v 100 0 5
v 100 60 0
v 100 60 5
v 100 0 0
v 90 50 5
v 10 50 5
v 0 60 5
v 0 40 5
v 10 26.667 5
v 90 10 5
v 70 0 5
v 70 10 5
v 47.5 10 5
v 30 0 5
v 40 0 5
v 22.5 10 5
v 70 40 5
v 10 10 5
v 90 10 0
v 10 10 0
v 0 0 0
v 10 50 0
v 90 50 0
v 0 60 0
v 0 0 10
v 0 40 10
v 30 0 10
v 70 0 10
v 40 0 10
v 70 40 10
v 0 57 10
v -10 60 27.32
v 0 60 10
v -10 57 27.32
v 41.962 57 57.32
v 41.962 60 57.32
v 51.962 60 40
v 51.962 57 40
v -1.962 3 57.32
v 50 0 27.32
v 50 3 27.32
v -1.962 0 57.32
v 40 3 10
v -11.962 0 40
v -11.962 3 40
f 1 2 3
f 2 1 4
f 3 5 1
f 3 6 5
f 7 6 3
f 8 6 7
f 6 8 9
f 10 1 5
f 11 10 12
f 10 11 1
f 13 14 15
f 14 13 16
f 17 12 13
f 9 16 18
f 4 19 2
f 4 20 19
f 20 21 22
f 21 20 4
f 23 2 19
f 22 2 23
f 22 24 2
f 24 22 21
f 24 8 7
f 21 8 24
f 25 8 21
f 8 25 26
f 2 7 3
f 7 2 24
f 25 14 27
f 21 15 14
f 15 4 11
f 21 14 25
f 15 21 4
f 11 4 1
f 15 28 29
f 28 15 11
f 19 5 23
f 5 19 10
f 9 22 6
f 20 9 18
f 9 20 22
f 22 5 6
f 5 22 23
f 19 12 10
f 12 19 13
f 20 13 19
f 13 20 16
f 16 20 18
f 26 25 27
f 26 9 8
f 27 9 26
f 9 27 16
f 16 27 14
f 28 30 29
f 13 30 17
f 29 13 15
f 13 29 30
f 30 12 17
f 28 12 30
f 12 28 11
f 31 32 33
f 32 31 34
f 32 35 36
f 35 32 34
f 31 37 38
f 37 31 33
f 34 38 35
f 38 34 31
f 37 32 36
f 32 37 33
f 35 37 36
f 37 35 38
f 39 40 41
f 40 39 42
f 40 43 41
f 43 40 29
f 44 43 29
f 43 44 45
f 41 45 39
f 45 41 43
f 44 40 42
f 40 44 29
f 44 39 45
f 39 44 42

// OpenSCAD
// Parameters
frame_length = 100;
frame_width = 60;
frame_thickness = 5;
cutout_margin = 10;

bracket_height = 40;
bracket_thickness = 5;
bracket_base = 30;

panel_length = 60;
panel_height = 20;
panel_thickness = 3;
panel_angle = 30;

// Base Frame
module base_frame() {
    difference() {
        cube([frame_length, frame_width, frame_thickness]);
        translate([cutout_margin, cutout_margin, -1])
            cube([frame_length - 2*cutout_margin, frame_width - 2*cutout_margin, frame_thickness + 2]);
    }
}

// Triangular Support Bracket
module triangular_bracket() {
    difference() {
        linear_extrude(height = bracket_thickness)
            polygon(points=[[0,0], [0,bracket_height], [bracket_base,0]]);
        // Circular hole
        translate([bracket_base/2, bracket_height - 10, -1])
            cylinder(h=bracket_thickness + 2, r=2, $fn=30);
    }
}

// Angled Side Panel
module angled_panel() {
    rotate([0, -panel_angle, 0])
        cube([panel_length, panel_thickness, panel_height]);
}

// Assembly
module assembly() {
    // Base Frame
    base_frame();

    // Triangular Brackets
    translate([0, 0, frame_thickness])
        triangular_bracket();
    translate([frame_length - bracket_base, 0, frame_thickness])
        mirror([1, 0, 0])
            triangular_bracket();

    // Angled Panels
    translate([0, frame_width - panel_thickness, frame_thickness + bracket_thickness])
        angled_panel();
    translate([frame_length - panel_length, 0, frame_thickness + bracket_thickness])
        mirror([1, 0, 0])
            angled_panel();
}

// Render the full assembly
assembly();
